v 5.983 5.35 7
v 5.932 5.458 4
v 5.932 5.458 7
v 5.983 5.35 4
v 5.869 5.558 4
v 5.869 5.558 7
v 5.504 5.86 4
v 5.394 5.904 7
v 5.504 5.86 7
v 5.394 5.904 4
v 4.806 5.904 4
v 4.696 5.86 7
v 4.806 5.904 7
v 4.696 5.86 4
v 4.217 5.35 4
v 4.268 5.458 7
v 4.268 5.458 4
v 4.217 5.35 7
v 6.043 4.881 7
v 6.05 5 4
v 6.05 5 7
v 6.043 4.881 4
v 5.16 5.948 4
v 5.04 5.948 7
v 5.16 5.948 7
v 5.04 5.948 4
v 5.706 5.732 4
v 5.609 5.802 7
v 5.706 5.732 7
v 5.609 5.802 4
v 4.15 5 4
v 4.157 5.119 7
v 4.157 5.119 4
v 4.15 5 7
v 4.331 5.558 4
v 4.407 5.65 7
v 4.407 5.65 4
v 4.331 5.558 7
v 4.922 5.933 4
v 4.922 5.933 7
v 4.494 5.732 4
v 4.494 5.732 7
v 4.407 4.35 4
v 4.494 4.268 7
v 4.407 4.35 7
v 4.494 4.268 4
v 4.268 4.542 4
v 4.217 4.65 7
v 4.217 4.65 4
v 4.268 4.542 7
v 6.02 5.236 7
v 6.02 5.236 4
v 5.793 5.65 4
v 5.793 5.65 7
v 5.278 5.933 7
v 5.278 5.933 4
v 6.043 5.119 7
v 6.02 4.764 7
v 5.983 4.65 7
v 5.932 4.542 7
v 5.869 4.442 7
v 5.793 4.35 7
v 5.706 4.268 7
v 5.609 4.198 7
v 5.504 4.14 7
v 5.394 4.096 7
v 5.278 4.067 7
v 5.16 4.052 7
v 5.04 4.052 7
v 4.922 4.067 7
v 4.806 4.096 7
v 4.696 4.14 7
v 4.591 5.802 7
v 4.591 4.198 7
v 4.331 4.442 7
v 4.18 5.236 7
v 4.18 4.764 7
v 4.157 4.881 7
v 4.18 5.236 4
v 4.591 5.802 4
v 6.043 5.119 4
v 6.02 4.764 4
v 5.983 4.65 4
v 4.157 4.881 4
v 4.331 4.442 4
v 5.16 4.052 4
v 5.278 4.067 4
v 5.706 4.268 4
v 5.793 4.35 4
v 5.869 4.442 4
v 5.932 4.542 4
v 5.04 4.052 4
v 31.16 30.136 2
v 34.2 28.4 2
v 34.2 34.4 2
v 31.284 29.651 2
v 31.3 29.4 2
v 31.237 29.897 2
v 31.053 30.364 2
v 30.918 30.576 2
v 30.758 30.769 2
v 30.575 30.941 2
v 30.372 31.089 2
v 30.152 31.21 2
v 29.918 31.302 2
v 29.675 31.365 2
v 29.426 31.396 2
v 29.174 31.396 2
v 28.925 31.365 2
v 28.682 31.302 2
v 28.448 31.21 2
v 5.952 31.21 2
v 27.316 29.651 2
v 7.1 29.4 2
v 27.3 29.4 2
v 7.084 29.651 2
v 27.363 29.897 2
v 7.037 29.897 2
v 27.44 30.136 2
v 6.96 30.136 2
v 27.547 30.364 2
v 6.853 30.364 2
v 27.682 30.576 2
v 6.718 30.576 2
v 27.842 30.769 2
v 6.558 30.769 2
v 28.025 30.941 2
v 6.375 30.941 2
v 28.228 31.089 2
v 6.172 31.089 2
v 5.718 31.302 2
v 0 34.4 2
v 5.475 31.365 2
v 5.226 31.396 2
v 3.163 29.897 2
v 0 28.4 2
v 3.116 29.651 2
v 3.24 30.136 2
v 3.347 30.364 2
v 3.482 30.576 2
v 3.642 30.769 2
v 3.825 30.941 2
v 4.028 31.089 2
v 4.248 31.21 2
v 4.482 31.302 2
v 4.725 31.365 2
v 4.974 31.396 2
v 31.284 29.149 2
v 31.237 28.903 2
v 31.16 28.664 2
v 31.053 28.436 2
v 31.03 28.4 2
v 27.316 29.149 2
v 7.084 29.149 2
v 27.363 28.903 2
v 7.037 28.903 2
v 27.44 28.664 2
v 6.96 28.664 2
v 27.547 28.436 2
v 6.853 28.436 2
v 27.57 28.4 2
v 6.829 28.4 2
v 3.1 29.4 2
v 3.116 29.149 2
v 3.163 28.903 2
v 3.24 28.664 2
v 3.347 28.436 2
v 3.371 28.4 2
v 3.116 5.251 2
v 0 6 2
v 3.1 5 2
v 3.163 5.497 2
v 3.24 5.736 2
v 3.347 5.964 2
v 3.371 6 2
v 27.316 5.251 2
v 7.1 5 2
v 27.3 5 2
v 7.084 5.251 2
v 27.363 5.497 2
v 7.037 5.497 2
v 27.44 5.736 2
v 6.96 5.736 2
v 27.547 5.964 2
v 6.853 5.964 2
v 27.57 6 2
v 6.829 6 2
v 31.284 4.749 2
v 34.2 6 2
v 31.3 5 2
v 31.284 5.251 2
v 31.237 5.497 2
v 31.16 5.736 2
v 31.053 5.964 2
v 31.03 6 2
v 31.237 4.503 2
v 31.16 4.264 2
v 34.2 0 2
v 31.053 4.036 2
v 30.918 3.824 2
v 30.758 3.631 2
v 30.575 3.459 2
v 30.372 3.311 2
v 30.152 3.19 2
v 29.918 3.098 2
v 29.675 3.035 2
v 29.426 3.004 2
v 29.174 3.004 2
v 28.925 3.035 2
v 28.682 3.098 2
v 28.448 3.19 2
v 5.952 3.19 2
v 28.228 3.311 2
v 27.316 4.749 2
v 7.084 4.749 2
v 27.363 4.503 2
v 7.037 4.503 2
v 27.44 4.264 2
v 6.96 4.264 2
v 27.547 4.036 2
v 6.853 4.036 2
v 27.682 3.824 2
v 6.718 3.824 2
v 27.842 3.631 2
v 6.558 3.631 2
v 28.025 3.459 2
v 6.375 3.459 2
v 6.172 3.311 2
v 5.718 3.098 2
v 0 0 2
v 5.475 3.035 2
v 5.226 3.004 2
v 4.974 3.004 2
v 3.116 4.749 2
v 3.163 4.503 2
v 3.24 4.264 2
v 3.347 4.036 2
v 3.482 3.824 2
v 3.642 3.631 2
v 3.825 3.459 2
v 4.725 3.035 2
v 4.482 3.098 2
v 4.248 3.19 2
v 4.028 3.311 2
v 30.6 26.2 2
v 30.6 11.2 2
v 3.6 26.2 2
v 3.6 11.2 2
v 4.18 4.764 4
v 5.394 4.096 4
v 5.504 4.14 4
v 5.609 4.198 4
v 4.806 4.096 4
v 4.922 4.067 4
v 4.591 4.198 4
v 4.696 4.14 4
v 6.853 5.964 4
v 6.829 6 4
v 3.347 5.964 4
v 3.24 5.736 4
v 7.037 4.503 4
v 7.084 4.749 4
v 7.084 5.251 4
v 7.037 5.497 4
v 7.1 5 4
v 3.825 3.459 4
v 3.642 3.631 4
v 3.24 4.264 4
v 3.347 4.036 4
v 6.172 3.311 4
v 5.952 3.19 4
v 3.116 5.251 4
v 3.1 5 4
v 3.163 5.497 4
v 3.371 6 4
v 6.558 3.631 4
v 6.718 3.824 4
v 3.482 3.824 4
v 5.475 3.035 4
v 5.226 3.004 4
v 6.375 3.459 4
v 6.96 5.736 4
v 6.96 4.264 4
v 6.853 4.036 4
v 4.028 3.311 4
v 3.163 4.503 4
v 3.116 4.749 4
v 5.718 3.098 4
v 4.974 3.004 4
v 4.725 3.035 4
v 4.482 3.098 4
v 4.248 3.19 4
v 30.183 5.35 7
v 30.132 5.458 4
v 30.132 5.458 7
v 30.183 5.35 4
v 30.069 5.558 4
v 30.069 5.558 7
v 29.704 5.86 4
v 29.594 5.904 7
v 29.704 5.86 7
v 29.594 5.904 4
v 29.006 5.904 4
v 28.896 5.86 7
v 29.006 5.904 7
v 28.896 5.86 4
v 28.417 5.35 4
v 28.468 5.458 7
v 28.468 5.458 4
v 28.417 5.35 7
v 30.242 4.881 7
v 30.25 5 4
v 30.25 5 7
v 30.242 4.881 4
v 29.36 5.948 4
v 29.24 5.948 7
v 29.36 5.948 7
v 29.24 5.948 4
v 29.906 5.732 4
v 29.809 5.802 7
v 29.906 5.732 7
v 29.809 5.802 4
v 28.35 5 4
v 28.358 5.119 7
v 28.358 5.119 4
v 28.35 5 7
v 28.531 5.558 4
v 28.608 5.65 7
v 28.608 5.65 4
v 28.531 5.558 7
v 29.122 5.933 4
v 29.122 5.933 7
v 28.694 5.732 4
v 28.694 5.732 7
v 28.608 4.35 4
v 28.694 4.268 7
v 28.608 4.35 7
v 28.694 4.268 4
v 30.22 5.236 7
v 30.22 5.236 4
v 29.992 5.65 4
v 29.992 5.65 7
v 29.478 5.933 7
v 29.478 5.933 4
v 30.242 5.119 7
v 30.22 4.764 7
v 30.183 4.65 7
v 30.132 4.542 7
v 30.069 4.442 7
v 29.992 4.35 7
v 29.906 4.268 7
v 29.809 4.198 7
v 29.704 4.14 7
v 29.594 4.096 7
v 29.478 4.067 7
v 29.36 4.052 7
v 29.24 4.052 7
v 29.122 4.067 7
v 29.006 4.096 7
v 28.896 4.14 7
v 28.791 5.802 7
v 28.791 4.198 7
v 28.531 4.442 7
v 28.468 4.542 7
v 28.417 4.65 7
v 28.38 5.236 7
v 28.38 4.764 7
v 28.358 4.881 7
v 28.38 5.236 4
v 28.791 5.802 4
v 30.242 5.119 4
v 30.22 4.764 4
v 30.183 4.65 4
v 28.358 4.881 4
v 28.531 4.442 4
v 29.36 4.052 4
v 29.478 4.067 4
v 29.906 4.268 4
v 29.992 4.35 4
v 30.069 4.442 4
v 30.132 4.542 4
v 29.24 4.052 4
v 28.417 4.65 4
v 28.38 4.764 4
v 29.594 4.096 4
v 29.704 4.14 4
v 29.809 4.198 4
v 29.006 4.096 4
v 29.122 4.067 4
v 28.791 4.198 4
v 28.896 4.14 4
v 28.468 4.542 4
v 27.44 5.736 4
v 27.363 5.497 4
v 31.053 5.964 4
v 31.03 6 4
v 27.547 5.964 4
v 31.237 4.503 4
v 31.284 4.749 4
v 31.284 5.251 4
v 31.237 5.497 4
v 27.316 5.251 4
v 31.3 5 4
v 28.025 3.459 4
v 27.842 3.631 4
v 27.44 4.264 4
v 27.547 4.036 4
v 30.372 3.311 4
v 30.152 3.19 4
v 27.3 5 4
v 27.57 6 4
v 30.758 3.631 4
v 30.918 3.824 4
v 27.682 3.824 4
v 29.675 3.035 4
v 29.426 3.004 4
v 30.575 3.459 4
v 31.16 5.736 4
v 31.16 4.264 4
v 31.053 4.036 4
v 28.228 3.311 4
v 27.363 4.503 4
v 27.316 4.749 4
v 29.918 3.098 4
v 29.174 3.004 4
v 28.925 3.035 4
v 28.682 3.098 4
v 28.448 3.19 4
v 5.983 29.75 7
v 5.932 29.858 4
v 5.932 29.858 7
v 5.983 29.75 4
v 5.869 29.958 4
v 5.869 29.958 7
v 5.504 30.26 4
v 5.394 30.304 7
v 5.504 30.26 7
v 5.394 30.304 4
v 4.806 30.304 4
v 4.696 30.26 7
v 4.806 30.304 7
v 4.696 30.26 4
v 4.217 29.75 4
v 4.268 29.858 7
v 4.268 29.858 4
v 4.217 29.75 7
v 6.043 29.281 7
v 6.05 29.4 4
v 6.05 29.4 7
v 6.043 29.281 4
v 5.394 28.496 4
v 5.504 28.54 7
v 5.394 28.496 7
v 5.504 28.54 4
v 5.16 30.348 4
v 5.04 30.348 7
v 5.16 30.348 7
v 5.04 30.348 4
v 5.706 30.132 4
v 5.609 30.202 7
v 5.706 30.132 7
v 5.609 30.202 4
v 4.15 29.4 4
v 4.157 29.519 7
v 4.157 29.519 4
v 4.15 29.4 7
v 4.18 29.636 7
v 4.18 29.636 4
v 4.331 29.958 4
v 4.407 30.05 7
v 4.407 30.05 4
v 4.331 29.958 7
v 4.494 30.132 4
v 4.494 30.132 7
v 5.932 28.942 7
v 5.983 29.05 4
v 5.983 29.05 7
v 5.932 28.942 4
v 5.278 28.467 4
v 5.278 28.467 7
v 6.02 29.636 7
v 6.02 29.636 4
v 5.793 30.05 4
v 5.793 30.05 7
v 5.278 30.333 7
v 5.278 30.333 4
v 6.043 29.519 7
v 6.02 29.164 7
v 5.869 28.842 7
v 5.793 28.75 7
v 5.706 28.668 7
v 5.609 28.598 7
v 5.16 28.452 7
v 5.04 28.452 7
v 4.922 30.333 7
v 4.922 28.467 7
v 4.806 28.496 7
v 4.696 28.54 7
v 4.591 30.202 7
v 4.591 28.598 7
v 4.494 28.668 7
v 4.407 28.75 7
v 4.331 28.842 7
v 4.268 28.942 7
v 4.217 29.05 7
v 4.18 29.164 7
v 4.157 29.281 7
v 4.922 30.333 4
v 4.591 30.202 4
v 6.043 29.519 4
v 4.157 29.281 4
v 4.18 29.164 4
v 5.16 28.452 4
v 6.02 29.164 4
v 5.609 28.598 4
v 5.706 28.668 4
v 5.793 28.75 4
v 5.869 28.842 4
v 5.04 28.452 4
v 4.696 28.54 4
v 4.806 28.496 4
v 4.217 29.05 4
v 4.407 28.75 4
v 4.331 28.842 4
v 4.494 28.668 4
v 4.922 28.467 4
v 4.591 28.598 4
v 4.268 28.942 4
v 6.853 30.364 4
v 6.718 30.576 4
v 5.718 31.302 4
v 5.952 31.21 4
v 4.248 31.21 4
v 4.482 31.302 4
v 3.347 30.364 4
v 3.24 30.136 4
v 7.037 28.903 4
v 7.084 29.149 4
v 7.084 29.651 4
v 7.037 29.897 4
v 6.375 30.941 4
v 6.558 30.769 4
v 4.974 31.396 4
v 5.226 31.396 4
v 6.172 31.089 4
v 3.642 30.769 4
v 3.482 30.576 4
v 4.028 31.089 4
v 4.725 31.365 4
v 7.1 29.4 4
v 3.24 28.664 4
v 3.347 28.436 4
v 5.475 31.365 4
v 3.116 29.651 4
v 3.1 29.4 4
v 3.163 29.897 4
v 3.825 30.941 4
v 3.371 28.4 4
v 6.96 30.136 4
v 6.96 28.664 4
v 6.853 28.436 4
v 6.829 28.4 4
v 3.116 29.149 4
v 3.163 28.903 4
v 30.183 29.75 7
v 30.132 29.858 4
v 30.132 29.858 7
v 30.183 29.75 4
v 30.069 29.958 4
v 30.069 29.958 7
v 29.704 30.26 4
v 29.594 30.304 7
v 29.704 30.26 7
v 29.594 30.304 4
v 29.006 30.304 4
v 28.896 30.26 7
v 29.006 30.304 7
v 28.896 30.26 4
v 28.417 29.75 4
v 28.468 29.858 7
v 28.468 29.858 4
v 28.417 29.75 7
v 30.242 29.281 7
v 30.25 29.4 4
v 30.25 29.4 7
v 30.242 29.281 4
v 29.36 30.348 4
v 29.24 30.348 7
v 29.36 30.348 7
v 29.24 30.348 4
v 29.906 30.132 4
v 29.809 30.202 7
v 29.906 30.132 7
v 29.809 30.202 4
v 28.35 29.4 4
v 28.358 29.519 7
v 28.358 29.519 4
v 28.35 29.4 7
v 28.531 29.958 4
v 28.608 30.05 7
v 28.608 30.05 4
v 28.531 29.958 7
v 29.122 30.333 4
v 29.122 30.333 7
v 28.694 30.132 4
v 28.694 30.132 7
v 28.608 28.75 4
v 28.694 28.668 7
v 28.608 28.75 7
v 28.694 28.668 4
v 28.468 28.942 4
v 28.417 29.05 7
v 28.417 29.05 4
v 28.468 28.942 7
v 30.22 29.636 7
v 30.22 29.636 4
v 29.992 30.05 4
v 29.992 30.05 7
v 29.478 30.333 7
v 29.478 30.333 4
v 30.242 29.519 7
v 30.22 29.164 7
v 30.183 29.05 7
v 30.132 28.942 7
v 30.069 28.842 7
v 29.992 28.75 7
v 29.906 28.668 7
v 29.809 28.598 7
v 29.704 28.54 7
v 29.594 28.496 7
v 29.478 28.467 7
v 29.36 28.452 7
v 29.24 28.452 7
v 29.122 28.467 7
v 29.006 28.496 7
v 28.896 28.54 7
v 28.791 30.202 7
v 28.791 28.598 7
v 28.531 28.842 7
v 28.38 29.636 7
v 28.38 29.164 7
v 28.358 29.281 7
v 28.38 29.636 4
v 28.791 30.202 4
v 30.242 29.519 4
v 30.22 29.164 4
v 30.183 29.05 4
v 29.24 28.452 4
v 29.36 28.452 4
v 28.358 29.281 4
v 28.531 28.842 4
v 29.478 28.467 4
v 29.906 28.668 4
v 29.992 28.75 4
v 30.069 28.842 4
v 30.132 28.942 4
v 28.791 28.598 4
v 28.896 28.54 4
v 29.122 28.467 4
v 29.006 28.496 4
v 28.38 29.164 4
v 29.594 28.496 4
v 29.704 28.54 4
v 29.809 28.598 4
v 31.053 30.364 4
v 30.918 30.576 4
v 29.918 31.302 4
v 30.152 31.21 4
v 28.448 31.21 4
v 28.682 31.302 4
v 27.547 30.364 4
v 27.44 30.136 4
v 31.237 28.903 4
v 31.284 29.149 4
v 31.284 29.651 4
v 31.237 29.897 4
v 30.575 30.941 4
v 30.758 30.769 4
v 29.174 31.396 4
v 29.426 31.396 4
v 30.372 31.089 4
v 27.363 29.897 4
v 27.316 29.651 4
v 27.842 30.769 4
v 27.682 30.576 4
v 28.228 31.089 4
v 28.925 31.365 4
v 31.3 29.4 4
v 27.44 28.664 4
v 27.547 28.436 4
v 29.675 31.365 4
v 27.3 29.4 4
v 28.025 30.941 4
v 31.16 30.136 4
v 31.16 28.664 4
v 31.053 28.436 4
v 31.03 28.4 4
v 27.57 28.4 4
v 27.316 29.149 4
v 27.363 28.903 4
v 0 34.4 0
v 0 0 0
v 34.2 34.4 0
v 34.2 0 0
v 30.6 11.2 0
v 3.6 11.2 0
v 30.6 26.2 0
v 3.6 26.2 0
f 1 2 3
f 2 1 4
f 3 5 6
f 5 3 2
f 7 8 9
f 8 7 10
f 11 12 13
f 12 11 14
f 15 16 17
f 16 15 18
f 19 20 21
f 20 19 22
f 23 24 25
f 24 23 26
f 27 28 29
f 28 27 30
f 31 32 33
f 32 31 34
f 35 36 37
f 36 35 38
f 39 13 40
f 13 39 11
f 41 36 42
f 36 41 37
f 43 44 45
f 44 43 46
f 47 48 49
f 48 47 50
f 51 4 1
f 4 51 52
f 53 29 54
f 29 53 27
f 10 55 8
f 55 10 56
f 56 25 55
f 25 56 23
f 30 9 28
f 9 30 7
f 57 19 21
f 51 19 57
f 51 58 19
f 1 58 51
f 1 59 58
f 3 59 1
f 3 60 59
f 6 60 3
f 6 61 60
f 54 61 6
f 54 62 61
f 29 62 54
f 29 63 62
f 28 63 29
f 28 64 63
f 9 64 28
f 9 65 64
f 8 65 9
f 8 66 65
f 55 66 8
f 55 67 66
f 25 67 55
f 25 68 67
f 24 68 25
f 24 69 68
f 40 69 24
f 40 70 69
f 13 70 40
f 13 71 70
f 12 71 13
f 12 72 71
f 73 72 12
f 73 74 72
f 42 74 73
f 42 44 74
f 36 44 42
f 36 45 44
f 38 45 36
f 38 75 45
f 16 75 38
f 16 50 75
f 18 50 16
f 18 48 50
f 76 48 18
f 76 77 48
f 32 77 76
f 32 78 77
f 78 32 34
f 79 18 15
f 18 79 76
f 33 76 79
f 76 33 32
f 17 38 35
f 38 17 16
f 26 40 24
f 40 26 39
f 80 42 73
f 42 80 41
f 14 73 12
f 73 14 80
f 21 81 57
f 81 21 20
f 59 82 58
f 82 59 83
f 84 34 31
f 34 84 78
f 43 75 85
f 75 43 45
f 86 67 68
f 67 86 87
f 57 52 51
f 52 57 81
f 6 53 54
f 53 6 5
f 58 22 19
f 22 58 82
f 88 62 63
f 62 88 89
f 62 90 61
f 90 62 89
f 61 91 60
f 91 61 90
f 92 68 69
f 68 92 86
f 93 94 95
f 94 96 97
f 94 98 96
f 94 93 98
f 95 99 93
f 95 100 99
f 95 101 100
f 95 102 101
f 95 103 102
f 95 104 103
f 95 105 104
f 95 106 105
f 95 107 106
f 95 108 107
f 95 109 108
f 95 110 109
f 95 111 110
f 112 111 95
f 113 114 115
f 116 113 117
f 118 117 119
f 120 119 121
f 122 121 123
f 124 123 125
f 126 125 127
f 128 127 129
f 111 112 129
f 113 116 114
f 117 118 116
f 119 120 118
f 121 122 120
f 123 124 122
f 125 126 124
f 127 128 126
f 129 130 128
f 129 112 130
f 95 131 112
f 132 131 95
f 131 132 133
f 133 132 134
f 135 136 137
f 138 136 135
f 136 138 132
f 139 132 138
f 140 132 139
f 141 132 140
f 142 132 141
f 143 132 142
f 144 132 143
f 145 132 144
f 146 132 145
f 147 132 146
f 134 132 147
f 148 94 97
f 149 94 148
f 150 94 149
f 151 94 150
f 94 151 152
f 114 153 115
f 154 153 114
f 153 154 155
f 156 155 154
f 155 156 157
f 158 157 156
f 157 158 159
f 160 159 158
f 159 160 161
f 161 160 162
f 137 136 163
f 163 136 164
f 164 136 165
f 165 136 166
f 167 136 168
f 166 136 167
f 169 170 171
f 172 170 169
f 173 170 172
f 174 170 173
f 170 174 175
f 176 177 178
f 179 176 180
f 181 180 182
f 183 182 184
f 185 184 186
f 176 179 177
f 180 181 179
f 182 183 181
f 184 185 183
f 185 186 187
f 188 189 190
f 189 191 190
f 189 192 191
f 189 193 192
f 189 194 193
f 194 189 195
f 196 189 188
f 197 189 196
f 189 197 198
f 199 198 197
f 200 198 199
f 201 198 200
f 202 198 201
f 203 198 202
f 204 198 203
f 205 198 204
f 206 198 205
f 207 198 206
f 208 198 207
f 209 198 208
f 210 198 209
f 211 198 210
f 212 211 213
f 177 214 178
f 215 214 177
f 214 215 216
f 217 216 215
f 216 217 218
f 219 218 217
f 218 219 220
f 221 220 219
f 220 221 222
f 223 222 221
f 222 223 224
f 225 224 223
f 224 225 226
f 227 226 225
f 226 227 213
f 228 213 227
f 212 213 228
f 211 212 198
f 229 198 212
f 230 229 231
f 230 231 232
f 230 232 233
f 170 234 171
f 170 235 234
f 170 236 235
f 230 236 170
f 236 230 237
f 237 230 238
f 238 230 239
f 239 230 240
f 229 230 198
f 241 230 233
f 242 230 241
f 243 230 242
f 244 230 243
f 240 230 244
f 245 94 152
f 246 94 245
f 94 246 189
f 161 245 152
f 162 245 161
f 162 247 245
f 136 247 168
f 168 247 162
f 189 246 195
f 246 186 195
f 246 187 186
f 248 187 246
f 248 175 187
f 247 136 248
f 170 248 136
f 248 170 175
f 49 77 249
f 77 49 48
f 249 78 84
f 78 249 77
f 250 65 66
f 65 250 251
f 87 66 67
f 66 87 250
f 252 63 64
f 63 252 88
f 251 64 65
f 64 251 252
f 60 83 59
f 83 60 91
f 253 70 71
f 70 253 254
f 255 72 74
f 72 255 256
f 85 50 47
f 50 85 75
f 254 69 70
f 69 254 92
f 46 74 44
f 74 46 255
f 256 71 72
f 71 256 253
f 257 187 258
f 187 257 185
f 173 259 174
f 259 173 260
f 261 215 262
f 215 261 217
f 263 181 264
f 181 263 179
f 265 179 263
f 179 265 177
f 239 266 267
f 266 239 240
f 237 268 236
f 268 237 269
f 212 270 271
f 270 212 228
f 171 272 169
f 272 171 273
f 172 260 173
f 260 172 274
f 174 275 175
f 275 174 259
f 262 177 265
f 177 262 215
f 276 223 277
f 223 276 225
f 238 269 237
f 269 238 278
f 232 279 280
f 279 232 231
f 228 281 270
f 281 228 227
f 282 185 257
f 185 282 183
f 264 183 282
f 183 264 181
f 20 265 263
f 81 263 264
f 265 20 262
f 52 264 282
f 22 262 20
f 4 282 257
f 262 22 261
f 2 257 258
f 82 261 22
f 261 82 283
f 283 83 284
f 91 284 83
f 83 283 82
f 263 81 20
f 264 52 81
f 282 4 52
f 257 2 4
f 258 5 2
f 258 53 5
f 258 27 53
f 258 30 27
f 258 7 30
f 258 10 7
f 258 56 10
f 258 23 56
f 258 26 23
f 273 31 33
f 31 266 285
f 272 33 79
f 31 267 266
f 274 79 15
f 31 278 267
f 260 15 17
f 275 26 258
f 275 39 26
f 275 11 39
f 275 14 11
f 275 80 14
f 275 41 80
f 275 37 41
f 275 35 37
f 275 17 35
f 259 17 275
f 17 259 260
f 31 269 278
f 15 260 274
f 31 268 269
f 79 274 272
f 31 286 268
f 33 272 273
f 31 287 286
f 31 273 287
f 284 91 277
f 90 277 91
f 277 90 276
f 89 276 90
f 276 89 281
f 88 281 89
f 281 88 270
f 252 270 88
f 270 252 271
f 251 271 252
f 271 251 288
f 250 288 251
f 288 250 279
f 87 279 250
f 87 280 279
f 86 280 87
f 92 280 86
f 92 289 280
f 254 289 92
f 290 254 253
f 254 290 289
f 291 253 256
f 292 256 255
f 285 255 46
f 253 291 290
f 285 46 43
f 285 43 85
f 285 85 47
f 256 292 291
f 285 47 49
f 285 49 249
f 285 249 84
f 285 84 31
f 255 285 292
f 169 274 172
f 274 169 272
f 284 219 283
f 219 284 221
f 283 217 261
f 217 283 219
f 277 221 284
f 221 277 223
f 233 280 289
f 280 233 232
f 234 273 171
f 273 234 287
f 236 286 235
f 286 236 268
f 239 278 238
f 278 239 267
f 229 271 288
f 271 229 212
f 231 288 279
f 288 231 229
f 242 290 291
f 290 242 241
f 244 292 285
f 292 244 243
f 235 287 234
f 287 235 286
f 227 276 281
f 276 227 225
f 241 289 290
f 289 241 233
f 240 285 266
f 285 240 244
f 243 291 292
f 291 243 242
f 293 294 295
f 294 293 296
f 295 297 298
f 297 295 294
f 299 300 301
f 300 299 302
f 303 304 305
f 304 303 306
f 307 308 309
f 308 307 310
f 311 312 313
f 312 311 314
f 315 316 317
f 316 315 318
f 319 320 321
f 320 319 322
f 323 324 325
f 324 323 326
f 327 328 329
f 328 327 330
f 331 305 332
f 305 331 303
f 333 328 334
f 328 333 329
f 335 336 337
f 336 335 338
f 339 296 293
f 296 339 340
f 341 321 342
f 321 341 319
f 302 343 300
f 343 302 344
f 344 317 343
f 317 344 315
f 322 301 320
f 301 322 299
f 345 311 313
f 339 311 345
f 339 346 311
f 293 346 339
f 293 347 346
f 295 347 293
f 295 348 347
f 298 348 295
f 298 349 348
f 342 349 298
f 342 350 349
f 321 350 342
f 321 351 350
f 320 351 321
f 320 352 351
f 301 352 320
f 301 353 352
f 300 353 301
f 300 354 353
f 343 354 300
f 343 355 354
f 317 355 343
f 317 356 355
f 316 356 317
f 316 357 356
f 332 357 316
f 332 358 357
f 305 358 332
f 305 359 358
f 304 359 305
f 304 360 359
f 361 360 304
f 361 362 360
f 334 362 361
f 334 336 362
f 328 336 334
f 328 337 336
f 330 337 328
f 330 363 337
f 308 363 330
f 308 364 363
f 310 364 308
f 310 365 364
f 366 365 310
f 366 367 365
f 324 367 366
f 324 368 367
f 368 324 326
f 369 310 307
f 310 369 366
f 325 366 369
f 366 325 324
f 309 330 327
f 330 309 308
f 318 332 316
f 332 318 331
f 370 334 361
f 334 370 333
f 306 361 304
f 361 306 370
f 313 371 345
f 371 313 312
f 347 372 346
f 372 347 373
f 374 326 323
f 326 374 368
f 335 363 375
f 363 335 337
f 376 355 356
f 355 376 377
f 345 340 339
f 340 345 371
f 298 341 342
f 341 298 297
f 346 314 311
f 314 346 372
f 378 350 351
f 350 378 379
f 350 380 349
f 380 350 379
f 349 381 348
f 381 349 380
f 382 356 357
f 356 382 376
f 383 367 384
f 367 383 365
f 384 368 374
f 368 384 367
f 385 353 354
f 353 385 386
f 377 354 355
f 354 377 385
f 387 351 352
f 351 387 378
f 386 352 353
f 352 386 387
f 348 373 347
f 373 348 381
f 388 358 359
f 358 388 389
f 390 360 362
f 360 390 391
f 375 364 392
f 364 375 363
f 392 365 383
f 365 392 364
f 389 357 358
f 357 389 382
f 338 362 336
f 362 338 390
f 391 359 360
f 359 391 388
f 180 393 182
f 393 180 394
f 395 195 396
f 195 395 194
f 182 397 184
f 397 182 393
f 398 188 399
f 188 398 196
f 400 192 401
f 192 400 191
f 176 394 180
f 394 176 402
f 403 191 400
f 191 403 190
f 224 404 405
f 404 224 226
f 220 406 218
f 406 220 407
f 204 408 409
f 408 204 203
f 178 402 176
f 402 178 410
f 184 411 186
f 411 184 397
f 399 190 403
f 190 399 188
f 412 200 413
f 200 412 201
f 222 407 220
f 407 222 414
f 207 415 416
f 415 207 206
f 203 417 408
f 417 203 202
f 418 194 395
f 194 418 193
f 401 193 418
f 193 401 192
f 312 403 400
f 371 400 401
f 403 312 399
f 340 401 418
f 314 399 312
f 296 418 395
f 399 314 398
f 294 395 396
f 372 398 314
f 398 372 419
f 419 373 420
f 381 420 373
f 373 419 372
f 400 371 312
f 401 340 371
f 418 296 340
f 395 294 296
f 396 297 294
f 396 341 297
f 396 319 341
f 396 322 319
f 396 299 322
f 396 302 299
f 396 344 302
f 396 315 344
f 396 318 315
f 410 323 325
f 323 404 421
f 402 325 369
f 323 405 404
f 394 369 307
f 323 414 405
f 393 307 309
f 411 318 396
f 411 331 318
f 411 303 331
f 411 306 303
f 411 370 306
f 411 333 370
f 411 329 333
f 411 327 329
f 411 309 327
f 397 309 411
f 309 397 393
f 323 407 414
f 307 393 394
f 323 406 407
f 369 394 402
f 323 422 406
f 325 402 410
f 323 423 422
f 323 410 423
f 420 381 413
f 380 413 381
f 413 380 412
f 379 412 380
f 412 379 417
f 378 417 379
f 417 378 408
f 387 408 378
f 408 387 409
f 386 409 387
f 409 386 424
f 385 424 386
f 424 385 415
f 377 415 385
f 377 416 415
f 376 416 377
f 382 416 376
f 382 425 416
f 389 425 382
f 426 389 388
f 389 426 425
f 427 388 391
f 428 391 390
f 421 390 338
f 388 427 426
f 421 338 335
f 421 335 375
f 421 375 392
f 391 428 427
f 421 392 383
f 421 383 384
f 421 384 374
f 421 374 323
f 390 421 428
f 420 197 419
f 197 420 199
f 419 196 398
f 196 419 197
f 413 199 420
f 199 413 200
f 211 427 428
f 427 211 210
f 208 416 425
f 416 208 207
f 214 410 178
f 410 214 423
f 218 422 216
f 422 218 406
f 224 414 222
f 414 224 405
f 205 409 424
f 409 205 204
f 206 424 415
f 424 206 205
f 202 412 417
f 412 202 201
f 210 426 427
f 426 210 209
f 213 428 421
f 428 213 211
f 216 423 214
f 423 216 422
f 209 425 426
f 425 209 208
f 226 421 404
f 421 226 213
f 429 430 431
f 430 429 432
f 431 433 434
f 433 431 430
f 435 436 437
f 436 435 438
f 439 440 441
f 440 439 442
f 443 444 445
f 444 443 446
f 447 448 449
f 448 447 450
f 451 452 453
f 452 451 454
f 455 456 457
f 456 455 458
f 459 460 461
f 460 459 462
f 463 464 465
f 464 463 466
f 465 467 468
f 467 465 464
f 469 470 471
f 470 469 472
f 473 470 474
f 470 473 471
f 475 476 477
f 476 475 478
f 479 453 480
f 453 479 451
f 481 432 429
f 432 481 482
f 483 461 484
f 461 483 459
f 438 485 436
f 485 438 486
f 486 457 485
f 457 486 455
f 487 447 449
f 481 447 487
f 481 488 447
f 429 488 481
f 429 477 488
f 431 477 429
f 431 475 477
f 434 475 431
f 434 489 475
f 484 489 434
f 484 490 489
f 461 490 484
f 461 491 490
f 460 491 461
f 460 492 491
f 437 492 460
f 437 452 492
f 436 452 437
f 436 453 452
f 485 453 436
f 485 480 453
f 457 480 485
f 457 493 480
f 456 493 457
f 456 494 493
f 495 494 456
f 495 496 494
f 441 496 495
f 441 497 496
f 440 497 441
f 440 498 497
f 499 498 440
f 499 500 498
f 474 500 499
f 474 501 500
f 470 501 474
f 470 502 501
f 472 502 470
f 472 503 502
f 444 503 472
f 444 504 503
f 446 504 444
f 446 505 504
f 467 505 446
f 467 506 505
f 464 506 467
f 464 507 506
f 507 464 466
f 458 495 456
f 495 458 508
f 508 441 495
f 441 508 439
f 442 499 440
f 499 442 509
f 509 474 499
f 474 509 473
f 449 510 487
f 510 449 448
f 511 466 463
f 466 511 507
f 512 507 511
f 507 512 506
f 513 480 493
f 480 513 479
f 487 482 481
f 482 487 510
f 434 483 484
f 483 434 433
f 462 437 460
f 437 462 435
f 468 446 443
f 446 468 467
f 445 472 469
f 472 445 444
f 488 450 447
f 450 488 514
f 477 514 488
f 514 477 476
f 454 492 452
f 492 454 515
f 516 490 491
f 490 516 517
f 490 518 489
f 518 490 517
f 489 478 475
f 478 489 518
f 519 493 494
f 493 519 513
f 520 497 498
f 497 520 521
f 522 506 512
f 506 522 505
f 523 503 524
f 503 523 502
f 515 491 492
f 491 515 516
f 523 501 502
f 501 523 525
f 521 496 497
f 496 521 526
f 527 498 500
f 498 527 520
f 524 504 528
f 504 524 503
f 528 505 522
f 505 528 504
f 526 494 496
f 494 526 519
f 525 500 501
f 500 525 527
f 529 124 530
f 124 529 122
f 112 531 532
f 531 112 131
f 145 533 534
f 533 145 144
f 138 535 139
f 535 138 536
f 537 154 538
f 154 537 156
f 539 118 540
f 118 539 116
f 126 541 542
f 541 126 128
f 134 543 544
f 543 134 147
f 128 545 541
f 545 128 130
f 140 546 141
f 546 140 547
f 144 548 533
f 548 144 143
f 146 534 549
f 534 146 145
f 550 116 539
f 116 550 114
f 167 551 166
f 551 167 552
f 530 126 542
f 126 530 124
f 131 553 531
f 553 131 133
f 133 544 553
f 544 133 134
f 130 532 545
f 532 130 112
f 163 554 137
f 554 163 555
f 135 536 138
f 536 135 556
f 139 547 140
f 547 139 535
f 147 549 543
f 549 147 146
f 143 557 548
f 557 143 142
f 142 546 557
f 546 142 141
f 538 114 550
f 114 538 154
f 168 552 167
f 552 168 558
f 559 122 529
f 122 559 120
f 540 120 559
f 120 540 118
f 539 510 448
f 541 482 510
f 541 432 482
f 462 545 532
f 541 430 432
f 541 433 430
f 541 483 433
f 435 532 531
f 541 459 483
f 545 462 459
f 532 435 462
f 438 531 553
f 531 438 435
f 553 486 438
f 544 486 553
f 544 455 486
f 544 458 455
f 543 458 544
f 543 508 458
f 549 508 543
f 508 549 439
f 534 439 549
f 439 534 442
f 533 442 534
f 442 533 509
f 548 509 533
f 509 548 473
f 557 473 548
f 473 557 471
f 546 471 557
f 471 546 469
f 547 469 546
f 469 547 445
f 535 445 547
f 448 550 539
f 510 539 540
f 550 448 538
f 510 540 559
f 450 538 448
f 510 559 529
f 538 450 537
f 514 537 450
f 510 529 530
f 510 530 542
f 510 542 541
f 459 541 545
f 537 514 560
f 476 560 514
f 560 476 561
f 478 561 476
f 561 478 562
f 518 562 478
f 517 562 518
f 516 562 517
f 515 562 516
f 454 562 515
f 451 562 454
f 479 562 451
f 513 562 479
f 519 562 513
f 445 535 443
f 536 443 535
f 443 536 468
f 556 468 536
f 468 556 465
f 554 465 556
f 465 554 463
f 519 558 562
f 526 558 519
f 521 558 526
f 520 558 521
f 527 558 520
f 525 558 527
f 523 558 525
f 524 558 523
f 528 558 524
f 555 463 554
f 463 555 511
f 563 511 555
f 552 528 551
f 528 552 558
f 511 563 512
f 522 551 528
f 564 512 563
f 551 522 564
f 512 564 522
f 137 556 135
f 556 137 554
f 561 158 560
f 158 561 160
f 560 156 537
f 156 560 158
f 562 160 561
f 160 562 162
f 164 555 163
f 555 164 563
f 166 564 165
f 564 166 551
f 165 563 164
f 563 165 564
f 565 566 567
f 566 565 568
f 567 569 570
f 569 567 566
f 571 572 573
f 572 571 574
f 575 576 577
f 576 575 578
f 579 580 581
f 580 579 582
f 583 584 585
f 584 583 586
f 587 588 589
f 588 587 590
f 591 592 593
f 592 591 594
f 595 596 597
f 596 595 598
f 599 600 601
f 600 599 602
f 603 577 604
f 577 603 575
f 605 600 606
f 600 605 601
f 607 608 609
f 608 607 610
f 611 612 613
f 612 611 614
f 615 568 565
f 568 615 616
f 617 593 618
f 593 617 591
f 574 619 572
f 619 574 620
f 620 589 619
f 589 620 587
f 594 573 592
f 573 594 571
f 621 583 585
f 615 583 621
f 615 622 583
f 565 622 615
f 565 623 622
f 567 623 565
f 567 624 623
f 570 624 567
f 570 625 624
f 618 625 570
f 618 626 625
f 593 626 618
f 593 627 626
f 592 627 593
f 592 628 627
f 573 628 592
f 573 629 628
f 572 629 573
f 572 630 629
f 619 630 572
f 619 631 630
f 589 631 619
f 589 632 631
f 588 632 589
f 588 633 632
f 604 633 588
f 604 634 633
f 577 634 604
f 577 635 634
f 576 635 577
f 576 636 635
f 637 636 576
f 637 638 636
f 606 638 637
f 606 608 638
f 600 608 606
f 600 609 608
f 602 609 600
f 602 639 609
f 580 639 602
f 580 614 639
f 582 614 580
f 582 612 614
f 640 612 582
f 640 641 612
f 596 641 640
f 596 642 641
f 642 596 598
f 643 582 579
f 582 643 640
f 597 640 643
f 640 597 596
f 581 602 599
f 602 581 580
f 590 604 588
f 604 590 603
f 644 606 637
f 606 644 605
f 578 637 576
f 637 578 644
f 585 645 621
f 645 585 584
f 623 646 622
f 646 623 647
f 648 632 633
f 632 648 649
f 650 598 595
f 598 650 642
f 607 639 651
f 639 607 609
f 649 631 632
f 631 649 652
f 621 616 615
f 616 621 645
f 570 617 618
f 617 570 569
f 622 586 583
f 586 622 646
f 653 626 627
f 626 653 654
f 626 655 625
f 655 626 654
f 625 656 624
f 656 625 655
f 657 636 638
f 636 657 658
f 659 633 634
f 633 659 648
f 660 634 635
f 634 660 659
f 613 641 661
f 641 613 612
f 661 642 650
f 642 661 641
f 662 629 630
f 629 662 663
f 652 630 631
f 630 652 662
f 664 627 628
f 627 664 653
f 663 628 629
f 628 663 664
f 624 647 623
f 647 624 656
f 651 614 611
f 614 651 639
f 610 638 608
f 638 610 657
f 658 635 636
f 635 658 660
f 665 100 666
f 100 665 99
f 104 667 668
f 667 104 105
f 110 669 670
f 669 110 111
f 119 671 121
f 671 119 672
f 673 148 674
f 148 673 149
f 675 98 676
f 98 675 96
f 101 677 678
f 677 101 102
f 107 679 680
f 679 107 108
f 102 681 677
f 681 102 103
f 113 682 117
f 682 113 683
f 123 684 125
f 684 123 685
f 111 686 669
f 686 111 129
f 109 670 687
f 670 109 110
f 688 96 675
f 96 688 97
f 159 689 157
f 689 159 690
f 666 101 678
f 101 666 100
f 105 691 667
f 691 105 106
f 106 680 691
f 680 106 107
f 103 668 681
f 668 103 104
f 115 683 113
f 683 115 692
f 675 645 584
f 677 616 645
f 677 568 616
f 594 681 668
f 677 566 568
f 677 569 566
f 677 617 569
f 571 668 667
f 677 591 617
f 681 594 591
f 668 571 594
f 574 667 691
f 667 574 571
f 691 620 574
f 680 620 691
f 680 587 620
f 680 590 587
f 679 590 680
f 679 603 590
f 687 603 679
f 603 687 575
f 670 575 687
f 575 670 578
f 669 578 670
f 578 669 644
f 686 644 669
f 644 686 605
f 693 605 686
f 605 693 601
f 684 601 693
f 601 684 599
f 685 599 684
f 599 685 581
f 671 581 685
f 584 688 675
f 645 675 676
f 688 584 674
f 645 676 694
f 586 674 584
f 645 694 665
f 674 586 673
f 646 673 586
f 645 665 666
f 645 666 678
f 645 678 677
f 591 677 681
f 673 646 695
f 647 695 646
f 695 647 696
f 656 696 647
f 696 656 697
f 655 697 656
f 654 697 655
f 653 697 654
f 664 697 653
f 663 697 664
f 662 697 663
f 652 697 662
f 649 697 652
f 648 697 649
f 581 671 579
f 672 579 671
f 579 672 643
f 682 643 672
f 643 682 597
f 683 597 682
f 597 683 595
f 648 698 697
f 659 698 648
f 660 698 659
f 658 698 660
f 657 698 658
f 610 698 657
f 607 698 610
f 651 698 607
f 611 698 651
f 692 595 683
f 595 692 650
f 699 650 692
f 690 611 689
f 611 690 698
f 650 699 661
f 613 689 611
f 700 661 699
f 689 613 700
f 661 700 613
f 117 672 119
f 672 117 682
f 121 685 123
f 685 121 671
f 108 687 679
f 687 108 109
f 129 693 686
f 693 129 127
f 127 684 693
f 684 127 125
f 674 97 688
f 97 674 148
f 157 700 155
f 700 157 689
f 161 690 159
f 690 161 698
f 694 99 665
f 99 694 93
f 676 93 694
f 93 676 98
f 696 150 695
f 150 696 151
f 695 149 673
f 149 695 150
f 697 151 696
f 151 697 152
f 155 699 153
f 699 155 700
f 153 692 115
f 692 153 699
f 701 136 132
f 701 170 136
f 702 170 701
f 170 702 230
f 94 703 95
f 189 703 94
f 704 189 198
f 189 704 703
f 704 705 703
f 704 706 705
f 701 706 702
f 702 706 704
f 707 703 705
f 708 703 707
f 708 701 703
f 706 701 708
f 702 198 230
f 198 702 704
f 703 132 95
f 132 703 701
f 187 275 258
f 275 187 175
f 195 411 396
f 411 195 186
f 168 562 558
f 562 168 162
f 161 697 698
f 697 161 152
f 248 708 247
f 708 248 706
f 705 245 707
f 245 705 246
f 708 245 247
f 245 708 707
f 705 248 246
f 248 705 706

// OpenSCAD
// Oled screen panel

// Dimensions between holes axis
xInterHole = 24.2;
yInterHole = 24.4;

// Margin around the whole stuff
xMargin = 10;
yMargin = 10;

// Overall panel dimensions
xPanel = xInterHole + xMargin;
yPanel = yInterHole + yMargin;
zPanel = 2;

// Dimensions of the window in the panel
xWindow = 27;
yWindow = 15;
zWindow = 2 * zPanel;
yOffset = 1.5;

// Some offset
xHoleCenter = 0.1;
yHoleCenter = 0;

windowPanel();

module windowPanel() {
  difference() {
    oledPanel();
    translate([(xPanel - xWindow)/2, (yPanel - yWindow)/2 + yOffset, -zPanel/2]) {
      cube([xWindow, yWindow, zWindow]);  
    }
  }
}


module oledPanel() {
  difference() {
    union() {
      cube([xPanel, yPanel, zPanel]);  
      pillar(xHoleCenter, yHoleCenter);
      pillar(xHoleCenter + xInterHole, yHoleCenter);
      pillar(xHoleCenter, yHoleCenter + yInterHole);
      pillar(xHoleCenter + xInterHole, yHoleCenter + yInterHole);
    }
    translate([-1, yMargin/2+1, zPanel]) {
      cube([xInterHole *2, yInterHole - 2, 3]);
    }
  }
}

// To fix the Oled
module pillar(x, y) {
  translate([x + xMargin/2, y + yMargin/2, zPanel]) {
    cylinder(d=1.9, h=5, $fn=50);
    cylinder(d=4, h=2, $fn=50);
    
  }
    
}
